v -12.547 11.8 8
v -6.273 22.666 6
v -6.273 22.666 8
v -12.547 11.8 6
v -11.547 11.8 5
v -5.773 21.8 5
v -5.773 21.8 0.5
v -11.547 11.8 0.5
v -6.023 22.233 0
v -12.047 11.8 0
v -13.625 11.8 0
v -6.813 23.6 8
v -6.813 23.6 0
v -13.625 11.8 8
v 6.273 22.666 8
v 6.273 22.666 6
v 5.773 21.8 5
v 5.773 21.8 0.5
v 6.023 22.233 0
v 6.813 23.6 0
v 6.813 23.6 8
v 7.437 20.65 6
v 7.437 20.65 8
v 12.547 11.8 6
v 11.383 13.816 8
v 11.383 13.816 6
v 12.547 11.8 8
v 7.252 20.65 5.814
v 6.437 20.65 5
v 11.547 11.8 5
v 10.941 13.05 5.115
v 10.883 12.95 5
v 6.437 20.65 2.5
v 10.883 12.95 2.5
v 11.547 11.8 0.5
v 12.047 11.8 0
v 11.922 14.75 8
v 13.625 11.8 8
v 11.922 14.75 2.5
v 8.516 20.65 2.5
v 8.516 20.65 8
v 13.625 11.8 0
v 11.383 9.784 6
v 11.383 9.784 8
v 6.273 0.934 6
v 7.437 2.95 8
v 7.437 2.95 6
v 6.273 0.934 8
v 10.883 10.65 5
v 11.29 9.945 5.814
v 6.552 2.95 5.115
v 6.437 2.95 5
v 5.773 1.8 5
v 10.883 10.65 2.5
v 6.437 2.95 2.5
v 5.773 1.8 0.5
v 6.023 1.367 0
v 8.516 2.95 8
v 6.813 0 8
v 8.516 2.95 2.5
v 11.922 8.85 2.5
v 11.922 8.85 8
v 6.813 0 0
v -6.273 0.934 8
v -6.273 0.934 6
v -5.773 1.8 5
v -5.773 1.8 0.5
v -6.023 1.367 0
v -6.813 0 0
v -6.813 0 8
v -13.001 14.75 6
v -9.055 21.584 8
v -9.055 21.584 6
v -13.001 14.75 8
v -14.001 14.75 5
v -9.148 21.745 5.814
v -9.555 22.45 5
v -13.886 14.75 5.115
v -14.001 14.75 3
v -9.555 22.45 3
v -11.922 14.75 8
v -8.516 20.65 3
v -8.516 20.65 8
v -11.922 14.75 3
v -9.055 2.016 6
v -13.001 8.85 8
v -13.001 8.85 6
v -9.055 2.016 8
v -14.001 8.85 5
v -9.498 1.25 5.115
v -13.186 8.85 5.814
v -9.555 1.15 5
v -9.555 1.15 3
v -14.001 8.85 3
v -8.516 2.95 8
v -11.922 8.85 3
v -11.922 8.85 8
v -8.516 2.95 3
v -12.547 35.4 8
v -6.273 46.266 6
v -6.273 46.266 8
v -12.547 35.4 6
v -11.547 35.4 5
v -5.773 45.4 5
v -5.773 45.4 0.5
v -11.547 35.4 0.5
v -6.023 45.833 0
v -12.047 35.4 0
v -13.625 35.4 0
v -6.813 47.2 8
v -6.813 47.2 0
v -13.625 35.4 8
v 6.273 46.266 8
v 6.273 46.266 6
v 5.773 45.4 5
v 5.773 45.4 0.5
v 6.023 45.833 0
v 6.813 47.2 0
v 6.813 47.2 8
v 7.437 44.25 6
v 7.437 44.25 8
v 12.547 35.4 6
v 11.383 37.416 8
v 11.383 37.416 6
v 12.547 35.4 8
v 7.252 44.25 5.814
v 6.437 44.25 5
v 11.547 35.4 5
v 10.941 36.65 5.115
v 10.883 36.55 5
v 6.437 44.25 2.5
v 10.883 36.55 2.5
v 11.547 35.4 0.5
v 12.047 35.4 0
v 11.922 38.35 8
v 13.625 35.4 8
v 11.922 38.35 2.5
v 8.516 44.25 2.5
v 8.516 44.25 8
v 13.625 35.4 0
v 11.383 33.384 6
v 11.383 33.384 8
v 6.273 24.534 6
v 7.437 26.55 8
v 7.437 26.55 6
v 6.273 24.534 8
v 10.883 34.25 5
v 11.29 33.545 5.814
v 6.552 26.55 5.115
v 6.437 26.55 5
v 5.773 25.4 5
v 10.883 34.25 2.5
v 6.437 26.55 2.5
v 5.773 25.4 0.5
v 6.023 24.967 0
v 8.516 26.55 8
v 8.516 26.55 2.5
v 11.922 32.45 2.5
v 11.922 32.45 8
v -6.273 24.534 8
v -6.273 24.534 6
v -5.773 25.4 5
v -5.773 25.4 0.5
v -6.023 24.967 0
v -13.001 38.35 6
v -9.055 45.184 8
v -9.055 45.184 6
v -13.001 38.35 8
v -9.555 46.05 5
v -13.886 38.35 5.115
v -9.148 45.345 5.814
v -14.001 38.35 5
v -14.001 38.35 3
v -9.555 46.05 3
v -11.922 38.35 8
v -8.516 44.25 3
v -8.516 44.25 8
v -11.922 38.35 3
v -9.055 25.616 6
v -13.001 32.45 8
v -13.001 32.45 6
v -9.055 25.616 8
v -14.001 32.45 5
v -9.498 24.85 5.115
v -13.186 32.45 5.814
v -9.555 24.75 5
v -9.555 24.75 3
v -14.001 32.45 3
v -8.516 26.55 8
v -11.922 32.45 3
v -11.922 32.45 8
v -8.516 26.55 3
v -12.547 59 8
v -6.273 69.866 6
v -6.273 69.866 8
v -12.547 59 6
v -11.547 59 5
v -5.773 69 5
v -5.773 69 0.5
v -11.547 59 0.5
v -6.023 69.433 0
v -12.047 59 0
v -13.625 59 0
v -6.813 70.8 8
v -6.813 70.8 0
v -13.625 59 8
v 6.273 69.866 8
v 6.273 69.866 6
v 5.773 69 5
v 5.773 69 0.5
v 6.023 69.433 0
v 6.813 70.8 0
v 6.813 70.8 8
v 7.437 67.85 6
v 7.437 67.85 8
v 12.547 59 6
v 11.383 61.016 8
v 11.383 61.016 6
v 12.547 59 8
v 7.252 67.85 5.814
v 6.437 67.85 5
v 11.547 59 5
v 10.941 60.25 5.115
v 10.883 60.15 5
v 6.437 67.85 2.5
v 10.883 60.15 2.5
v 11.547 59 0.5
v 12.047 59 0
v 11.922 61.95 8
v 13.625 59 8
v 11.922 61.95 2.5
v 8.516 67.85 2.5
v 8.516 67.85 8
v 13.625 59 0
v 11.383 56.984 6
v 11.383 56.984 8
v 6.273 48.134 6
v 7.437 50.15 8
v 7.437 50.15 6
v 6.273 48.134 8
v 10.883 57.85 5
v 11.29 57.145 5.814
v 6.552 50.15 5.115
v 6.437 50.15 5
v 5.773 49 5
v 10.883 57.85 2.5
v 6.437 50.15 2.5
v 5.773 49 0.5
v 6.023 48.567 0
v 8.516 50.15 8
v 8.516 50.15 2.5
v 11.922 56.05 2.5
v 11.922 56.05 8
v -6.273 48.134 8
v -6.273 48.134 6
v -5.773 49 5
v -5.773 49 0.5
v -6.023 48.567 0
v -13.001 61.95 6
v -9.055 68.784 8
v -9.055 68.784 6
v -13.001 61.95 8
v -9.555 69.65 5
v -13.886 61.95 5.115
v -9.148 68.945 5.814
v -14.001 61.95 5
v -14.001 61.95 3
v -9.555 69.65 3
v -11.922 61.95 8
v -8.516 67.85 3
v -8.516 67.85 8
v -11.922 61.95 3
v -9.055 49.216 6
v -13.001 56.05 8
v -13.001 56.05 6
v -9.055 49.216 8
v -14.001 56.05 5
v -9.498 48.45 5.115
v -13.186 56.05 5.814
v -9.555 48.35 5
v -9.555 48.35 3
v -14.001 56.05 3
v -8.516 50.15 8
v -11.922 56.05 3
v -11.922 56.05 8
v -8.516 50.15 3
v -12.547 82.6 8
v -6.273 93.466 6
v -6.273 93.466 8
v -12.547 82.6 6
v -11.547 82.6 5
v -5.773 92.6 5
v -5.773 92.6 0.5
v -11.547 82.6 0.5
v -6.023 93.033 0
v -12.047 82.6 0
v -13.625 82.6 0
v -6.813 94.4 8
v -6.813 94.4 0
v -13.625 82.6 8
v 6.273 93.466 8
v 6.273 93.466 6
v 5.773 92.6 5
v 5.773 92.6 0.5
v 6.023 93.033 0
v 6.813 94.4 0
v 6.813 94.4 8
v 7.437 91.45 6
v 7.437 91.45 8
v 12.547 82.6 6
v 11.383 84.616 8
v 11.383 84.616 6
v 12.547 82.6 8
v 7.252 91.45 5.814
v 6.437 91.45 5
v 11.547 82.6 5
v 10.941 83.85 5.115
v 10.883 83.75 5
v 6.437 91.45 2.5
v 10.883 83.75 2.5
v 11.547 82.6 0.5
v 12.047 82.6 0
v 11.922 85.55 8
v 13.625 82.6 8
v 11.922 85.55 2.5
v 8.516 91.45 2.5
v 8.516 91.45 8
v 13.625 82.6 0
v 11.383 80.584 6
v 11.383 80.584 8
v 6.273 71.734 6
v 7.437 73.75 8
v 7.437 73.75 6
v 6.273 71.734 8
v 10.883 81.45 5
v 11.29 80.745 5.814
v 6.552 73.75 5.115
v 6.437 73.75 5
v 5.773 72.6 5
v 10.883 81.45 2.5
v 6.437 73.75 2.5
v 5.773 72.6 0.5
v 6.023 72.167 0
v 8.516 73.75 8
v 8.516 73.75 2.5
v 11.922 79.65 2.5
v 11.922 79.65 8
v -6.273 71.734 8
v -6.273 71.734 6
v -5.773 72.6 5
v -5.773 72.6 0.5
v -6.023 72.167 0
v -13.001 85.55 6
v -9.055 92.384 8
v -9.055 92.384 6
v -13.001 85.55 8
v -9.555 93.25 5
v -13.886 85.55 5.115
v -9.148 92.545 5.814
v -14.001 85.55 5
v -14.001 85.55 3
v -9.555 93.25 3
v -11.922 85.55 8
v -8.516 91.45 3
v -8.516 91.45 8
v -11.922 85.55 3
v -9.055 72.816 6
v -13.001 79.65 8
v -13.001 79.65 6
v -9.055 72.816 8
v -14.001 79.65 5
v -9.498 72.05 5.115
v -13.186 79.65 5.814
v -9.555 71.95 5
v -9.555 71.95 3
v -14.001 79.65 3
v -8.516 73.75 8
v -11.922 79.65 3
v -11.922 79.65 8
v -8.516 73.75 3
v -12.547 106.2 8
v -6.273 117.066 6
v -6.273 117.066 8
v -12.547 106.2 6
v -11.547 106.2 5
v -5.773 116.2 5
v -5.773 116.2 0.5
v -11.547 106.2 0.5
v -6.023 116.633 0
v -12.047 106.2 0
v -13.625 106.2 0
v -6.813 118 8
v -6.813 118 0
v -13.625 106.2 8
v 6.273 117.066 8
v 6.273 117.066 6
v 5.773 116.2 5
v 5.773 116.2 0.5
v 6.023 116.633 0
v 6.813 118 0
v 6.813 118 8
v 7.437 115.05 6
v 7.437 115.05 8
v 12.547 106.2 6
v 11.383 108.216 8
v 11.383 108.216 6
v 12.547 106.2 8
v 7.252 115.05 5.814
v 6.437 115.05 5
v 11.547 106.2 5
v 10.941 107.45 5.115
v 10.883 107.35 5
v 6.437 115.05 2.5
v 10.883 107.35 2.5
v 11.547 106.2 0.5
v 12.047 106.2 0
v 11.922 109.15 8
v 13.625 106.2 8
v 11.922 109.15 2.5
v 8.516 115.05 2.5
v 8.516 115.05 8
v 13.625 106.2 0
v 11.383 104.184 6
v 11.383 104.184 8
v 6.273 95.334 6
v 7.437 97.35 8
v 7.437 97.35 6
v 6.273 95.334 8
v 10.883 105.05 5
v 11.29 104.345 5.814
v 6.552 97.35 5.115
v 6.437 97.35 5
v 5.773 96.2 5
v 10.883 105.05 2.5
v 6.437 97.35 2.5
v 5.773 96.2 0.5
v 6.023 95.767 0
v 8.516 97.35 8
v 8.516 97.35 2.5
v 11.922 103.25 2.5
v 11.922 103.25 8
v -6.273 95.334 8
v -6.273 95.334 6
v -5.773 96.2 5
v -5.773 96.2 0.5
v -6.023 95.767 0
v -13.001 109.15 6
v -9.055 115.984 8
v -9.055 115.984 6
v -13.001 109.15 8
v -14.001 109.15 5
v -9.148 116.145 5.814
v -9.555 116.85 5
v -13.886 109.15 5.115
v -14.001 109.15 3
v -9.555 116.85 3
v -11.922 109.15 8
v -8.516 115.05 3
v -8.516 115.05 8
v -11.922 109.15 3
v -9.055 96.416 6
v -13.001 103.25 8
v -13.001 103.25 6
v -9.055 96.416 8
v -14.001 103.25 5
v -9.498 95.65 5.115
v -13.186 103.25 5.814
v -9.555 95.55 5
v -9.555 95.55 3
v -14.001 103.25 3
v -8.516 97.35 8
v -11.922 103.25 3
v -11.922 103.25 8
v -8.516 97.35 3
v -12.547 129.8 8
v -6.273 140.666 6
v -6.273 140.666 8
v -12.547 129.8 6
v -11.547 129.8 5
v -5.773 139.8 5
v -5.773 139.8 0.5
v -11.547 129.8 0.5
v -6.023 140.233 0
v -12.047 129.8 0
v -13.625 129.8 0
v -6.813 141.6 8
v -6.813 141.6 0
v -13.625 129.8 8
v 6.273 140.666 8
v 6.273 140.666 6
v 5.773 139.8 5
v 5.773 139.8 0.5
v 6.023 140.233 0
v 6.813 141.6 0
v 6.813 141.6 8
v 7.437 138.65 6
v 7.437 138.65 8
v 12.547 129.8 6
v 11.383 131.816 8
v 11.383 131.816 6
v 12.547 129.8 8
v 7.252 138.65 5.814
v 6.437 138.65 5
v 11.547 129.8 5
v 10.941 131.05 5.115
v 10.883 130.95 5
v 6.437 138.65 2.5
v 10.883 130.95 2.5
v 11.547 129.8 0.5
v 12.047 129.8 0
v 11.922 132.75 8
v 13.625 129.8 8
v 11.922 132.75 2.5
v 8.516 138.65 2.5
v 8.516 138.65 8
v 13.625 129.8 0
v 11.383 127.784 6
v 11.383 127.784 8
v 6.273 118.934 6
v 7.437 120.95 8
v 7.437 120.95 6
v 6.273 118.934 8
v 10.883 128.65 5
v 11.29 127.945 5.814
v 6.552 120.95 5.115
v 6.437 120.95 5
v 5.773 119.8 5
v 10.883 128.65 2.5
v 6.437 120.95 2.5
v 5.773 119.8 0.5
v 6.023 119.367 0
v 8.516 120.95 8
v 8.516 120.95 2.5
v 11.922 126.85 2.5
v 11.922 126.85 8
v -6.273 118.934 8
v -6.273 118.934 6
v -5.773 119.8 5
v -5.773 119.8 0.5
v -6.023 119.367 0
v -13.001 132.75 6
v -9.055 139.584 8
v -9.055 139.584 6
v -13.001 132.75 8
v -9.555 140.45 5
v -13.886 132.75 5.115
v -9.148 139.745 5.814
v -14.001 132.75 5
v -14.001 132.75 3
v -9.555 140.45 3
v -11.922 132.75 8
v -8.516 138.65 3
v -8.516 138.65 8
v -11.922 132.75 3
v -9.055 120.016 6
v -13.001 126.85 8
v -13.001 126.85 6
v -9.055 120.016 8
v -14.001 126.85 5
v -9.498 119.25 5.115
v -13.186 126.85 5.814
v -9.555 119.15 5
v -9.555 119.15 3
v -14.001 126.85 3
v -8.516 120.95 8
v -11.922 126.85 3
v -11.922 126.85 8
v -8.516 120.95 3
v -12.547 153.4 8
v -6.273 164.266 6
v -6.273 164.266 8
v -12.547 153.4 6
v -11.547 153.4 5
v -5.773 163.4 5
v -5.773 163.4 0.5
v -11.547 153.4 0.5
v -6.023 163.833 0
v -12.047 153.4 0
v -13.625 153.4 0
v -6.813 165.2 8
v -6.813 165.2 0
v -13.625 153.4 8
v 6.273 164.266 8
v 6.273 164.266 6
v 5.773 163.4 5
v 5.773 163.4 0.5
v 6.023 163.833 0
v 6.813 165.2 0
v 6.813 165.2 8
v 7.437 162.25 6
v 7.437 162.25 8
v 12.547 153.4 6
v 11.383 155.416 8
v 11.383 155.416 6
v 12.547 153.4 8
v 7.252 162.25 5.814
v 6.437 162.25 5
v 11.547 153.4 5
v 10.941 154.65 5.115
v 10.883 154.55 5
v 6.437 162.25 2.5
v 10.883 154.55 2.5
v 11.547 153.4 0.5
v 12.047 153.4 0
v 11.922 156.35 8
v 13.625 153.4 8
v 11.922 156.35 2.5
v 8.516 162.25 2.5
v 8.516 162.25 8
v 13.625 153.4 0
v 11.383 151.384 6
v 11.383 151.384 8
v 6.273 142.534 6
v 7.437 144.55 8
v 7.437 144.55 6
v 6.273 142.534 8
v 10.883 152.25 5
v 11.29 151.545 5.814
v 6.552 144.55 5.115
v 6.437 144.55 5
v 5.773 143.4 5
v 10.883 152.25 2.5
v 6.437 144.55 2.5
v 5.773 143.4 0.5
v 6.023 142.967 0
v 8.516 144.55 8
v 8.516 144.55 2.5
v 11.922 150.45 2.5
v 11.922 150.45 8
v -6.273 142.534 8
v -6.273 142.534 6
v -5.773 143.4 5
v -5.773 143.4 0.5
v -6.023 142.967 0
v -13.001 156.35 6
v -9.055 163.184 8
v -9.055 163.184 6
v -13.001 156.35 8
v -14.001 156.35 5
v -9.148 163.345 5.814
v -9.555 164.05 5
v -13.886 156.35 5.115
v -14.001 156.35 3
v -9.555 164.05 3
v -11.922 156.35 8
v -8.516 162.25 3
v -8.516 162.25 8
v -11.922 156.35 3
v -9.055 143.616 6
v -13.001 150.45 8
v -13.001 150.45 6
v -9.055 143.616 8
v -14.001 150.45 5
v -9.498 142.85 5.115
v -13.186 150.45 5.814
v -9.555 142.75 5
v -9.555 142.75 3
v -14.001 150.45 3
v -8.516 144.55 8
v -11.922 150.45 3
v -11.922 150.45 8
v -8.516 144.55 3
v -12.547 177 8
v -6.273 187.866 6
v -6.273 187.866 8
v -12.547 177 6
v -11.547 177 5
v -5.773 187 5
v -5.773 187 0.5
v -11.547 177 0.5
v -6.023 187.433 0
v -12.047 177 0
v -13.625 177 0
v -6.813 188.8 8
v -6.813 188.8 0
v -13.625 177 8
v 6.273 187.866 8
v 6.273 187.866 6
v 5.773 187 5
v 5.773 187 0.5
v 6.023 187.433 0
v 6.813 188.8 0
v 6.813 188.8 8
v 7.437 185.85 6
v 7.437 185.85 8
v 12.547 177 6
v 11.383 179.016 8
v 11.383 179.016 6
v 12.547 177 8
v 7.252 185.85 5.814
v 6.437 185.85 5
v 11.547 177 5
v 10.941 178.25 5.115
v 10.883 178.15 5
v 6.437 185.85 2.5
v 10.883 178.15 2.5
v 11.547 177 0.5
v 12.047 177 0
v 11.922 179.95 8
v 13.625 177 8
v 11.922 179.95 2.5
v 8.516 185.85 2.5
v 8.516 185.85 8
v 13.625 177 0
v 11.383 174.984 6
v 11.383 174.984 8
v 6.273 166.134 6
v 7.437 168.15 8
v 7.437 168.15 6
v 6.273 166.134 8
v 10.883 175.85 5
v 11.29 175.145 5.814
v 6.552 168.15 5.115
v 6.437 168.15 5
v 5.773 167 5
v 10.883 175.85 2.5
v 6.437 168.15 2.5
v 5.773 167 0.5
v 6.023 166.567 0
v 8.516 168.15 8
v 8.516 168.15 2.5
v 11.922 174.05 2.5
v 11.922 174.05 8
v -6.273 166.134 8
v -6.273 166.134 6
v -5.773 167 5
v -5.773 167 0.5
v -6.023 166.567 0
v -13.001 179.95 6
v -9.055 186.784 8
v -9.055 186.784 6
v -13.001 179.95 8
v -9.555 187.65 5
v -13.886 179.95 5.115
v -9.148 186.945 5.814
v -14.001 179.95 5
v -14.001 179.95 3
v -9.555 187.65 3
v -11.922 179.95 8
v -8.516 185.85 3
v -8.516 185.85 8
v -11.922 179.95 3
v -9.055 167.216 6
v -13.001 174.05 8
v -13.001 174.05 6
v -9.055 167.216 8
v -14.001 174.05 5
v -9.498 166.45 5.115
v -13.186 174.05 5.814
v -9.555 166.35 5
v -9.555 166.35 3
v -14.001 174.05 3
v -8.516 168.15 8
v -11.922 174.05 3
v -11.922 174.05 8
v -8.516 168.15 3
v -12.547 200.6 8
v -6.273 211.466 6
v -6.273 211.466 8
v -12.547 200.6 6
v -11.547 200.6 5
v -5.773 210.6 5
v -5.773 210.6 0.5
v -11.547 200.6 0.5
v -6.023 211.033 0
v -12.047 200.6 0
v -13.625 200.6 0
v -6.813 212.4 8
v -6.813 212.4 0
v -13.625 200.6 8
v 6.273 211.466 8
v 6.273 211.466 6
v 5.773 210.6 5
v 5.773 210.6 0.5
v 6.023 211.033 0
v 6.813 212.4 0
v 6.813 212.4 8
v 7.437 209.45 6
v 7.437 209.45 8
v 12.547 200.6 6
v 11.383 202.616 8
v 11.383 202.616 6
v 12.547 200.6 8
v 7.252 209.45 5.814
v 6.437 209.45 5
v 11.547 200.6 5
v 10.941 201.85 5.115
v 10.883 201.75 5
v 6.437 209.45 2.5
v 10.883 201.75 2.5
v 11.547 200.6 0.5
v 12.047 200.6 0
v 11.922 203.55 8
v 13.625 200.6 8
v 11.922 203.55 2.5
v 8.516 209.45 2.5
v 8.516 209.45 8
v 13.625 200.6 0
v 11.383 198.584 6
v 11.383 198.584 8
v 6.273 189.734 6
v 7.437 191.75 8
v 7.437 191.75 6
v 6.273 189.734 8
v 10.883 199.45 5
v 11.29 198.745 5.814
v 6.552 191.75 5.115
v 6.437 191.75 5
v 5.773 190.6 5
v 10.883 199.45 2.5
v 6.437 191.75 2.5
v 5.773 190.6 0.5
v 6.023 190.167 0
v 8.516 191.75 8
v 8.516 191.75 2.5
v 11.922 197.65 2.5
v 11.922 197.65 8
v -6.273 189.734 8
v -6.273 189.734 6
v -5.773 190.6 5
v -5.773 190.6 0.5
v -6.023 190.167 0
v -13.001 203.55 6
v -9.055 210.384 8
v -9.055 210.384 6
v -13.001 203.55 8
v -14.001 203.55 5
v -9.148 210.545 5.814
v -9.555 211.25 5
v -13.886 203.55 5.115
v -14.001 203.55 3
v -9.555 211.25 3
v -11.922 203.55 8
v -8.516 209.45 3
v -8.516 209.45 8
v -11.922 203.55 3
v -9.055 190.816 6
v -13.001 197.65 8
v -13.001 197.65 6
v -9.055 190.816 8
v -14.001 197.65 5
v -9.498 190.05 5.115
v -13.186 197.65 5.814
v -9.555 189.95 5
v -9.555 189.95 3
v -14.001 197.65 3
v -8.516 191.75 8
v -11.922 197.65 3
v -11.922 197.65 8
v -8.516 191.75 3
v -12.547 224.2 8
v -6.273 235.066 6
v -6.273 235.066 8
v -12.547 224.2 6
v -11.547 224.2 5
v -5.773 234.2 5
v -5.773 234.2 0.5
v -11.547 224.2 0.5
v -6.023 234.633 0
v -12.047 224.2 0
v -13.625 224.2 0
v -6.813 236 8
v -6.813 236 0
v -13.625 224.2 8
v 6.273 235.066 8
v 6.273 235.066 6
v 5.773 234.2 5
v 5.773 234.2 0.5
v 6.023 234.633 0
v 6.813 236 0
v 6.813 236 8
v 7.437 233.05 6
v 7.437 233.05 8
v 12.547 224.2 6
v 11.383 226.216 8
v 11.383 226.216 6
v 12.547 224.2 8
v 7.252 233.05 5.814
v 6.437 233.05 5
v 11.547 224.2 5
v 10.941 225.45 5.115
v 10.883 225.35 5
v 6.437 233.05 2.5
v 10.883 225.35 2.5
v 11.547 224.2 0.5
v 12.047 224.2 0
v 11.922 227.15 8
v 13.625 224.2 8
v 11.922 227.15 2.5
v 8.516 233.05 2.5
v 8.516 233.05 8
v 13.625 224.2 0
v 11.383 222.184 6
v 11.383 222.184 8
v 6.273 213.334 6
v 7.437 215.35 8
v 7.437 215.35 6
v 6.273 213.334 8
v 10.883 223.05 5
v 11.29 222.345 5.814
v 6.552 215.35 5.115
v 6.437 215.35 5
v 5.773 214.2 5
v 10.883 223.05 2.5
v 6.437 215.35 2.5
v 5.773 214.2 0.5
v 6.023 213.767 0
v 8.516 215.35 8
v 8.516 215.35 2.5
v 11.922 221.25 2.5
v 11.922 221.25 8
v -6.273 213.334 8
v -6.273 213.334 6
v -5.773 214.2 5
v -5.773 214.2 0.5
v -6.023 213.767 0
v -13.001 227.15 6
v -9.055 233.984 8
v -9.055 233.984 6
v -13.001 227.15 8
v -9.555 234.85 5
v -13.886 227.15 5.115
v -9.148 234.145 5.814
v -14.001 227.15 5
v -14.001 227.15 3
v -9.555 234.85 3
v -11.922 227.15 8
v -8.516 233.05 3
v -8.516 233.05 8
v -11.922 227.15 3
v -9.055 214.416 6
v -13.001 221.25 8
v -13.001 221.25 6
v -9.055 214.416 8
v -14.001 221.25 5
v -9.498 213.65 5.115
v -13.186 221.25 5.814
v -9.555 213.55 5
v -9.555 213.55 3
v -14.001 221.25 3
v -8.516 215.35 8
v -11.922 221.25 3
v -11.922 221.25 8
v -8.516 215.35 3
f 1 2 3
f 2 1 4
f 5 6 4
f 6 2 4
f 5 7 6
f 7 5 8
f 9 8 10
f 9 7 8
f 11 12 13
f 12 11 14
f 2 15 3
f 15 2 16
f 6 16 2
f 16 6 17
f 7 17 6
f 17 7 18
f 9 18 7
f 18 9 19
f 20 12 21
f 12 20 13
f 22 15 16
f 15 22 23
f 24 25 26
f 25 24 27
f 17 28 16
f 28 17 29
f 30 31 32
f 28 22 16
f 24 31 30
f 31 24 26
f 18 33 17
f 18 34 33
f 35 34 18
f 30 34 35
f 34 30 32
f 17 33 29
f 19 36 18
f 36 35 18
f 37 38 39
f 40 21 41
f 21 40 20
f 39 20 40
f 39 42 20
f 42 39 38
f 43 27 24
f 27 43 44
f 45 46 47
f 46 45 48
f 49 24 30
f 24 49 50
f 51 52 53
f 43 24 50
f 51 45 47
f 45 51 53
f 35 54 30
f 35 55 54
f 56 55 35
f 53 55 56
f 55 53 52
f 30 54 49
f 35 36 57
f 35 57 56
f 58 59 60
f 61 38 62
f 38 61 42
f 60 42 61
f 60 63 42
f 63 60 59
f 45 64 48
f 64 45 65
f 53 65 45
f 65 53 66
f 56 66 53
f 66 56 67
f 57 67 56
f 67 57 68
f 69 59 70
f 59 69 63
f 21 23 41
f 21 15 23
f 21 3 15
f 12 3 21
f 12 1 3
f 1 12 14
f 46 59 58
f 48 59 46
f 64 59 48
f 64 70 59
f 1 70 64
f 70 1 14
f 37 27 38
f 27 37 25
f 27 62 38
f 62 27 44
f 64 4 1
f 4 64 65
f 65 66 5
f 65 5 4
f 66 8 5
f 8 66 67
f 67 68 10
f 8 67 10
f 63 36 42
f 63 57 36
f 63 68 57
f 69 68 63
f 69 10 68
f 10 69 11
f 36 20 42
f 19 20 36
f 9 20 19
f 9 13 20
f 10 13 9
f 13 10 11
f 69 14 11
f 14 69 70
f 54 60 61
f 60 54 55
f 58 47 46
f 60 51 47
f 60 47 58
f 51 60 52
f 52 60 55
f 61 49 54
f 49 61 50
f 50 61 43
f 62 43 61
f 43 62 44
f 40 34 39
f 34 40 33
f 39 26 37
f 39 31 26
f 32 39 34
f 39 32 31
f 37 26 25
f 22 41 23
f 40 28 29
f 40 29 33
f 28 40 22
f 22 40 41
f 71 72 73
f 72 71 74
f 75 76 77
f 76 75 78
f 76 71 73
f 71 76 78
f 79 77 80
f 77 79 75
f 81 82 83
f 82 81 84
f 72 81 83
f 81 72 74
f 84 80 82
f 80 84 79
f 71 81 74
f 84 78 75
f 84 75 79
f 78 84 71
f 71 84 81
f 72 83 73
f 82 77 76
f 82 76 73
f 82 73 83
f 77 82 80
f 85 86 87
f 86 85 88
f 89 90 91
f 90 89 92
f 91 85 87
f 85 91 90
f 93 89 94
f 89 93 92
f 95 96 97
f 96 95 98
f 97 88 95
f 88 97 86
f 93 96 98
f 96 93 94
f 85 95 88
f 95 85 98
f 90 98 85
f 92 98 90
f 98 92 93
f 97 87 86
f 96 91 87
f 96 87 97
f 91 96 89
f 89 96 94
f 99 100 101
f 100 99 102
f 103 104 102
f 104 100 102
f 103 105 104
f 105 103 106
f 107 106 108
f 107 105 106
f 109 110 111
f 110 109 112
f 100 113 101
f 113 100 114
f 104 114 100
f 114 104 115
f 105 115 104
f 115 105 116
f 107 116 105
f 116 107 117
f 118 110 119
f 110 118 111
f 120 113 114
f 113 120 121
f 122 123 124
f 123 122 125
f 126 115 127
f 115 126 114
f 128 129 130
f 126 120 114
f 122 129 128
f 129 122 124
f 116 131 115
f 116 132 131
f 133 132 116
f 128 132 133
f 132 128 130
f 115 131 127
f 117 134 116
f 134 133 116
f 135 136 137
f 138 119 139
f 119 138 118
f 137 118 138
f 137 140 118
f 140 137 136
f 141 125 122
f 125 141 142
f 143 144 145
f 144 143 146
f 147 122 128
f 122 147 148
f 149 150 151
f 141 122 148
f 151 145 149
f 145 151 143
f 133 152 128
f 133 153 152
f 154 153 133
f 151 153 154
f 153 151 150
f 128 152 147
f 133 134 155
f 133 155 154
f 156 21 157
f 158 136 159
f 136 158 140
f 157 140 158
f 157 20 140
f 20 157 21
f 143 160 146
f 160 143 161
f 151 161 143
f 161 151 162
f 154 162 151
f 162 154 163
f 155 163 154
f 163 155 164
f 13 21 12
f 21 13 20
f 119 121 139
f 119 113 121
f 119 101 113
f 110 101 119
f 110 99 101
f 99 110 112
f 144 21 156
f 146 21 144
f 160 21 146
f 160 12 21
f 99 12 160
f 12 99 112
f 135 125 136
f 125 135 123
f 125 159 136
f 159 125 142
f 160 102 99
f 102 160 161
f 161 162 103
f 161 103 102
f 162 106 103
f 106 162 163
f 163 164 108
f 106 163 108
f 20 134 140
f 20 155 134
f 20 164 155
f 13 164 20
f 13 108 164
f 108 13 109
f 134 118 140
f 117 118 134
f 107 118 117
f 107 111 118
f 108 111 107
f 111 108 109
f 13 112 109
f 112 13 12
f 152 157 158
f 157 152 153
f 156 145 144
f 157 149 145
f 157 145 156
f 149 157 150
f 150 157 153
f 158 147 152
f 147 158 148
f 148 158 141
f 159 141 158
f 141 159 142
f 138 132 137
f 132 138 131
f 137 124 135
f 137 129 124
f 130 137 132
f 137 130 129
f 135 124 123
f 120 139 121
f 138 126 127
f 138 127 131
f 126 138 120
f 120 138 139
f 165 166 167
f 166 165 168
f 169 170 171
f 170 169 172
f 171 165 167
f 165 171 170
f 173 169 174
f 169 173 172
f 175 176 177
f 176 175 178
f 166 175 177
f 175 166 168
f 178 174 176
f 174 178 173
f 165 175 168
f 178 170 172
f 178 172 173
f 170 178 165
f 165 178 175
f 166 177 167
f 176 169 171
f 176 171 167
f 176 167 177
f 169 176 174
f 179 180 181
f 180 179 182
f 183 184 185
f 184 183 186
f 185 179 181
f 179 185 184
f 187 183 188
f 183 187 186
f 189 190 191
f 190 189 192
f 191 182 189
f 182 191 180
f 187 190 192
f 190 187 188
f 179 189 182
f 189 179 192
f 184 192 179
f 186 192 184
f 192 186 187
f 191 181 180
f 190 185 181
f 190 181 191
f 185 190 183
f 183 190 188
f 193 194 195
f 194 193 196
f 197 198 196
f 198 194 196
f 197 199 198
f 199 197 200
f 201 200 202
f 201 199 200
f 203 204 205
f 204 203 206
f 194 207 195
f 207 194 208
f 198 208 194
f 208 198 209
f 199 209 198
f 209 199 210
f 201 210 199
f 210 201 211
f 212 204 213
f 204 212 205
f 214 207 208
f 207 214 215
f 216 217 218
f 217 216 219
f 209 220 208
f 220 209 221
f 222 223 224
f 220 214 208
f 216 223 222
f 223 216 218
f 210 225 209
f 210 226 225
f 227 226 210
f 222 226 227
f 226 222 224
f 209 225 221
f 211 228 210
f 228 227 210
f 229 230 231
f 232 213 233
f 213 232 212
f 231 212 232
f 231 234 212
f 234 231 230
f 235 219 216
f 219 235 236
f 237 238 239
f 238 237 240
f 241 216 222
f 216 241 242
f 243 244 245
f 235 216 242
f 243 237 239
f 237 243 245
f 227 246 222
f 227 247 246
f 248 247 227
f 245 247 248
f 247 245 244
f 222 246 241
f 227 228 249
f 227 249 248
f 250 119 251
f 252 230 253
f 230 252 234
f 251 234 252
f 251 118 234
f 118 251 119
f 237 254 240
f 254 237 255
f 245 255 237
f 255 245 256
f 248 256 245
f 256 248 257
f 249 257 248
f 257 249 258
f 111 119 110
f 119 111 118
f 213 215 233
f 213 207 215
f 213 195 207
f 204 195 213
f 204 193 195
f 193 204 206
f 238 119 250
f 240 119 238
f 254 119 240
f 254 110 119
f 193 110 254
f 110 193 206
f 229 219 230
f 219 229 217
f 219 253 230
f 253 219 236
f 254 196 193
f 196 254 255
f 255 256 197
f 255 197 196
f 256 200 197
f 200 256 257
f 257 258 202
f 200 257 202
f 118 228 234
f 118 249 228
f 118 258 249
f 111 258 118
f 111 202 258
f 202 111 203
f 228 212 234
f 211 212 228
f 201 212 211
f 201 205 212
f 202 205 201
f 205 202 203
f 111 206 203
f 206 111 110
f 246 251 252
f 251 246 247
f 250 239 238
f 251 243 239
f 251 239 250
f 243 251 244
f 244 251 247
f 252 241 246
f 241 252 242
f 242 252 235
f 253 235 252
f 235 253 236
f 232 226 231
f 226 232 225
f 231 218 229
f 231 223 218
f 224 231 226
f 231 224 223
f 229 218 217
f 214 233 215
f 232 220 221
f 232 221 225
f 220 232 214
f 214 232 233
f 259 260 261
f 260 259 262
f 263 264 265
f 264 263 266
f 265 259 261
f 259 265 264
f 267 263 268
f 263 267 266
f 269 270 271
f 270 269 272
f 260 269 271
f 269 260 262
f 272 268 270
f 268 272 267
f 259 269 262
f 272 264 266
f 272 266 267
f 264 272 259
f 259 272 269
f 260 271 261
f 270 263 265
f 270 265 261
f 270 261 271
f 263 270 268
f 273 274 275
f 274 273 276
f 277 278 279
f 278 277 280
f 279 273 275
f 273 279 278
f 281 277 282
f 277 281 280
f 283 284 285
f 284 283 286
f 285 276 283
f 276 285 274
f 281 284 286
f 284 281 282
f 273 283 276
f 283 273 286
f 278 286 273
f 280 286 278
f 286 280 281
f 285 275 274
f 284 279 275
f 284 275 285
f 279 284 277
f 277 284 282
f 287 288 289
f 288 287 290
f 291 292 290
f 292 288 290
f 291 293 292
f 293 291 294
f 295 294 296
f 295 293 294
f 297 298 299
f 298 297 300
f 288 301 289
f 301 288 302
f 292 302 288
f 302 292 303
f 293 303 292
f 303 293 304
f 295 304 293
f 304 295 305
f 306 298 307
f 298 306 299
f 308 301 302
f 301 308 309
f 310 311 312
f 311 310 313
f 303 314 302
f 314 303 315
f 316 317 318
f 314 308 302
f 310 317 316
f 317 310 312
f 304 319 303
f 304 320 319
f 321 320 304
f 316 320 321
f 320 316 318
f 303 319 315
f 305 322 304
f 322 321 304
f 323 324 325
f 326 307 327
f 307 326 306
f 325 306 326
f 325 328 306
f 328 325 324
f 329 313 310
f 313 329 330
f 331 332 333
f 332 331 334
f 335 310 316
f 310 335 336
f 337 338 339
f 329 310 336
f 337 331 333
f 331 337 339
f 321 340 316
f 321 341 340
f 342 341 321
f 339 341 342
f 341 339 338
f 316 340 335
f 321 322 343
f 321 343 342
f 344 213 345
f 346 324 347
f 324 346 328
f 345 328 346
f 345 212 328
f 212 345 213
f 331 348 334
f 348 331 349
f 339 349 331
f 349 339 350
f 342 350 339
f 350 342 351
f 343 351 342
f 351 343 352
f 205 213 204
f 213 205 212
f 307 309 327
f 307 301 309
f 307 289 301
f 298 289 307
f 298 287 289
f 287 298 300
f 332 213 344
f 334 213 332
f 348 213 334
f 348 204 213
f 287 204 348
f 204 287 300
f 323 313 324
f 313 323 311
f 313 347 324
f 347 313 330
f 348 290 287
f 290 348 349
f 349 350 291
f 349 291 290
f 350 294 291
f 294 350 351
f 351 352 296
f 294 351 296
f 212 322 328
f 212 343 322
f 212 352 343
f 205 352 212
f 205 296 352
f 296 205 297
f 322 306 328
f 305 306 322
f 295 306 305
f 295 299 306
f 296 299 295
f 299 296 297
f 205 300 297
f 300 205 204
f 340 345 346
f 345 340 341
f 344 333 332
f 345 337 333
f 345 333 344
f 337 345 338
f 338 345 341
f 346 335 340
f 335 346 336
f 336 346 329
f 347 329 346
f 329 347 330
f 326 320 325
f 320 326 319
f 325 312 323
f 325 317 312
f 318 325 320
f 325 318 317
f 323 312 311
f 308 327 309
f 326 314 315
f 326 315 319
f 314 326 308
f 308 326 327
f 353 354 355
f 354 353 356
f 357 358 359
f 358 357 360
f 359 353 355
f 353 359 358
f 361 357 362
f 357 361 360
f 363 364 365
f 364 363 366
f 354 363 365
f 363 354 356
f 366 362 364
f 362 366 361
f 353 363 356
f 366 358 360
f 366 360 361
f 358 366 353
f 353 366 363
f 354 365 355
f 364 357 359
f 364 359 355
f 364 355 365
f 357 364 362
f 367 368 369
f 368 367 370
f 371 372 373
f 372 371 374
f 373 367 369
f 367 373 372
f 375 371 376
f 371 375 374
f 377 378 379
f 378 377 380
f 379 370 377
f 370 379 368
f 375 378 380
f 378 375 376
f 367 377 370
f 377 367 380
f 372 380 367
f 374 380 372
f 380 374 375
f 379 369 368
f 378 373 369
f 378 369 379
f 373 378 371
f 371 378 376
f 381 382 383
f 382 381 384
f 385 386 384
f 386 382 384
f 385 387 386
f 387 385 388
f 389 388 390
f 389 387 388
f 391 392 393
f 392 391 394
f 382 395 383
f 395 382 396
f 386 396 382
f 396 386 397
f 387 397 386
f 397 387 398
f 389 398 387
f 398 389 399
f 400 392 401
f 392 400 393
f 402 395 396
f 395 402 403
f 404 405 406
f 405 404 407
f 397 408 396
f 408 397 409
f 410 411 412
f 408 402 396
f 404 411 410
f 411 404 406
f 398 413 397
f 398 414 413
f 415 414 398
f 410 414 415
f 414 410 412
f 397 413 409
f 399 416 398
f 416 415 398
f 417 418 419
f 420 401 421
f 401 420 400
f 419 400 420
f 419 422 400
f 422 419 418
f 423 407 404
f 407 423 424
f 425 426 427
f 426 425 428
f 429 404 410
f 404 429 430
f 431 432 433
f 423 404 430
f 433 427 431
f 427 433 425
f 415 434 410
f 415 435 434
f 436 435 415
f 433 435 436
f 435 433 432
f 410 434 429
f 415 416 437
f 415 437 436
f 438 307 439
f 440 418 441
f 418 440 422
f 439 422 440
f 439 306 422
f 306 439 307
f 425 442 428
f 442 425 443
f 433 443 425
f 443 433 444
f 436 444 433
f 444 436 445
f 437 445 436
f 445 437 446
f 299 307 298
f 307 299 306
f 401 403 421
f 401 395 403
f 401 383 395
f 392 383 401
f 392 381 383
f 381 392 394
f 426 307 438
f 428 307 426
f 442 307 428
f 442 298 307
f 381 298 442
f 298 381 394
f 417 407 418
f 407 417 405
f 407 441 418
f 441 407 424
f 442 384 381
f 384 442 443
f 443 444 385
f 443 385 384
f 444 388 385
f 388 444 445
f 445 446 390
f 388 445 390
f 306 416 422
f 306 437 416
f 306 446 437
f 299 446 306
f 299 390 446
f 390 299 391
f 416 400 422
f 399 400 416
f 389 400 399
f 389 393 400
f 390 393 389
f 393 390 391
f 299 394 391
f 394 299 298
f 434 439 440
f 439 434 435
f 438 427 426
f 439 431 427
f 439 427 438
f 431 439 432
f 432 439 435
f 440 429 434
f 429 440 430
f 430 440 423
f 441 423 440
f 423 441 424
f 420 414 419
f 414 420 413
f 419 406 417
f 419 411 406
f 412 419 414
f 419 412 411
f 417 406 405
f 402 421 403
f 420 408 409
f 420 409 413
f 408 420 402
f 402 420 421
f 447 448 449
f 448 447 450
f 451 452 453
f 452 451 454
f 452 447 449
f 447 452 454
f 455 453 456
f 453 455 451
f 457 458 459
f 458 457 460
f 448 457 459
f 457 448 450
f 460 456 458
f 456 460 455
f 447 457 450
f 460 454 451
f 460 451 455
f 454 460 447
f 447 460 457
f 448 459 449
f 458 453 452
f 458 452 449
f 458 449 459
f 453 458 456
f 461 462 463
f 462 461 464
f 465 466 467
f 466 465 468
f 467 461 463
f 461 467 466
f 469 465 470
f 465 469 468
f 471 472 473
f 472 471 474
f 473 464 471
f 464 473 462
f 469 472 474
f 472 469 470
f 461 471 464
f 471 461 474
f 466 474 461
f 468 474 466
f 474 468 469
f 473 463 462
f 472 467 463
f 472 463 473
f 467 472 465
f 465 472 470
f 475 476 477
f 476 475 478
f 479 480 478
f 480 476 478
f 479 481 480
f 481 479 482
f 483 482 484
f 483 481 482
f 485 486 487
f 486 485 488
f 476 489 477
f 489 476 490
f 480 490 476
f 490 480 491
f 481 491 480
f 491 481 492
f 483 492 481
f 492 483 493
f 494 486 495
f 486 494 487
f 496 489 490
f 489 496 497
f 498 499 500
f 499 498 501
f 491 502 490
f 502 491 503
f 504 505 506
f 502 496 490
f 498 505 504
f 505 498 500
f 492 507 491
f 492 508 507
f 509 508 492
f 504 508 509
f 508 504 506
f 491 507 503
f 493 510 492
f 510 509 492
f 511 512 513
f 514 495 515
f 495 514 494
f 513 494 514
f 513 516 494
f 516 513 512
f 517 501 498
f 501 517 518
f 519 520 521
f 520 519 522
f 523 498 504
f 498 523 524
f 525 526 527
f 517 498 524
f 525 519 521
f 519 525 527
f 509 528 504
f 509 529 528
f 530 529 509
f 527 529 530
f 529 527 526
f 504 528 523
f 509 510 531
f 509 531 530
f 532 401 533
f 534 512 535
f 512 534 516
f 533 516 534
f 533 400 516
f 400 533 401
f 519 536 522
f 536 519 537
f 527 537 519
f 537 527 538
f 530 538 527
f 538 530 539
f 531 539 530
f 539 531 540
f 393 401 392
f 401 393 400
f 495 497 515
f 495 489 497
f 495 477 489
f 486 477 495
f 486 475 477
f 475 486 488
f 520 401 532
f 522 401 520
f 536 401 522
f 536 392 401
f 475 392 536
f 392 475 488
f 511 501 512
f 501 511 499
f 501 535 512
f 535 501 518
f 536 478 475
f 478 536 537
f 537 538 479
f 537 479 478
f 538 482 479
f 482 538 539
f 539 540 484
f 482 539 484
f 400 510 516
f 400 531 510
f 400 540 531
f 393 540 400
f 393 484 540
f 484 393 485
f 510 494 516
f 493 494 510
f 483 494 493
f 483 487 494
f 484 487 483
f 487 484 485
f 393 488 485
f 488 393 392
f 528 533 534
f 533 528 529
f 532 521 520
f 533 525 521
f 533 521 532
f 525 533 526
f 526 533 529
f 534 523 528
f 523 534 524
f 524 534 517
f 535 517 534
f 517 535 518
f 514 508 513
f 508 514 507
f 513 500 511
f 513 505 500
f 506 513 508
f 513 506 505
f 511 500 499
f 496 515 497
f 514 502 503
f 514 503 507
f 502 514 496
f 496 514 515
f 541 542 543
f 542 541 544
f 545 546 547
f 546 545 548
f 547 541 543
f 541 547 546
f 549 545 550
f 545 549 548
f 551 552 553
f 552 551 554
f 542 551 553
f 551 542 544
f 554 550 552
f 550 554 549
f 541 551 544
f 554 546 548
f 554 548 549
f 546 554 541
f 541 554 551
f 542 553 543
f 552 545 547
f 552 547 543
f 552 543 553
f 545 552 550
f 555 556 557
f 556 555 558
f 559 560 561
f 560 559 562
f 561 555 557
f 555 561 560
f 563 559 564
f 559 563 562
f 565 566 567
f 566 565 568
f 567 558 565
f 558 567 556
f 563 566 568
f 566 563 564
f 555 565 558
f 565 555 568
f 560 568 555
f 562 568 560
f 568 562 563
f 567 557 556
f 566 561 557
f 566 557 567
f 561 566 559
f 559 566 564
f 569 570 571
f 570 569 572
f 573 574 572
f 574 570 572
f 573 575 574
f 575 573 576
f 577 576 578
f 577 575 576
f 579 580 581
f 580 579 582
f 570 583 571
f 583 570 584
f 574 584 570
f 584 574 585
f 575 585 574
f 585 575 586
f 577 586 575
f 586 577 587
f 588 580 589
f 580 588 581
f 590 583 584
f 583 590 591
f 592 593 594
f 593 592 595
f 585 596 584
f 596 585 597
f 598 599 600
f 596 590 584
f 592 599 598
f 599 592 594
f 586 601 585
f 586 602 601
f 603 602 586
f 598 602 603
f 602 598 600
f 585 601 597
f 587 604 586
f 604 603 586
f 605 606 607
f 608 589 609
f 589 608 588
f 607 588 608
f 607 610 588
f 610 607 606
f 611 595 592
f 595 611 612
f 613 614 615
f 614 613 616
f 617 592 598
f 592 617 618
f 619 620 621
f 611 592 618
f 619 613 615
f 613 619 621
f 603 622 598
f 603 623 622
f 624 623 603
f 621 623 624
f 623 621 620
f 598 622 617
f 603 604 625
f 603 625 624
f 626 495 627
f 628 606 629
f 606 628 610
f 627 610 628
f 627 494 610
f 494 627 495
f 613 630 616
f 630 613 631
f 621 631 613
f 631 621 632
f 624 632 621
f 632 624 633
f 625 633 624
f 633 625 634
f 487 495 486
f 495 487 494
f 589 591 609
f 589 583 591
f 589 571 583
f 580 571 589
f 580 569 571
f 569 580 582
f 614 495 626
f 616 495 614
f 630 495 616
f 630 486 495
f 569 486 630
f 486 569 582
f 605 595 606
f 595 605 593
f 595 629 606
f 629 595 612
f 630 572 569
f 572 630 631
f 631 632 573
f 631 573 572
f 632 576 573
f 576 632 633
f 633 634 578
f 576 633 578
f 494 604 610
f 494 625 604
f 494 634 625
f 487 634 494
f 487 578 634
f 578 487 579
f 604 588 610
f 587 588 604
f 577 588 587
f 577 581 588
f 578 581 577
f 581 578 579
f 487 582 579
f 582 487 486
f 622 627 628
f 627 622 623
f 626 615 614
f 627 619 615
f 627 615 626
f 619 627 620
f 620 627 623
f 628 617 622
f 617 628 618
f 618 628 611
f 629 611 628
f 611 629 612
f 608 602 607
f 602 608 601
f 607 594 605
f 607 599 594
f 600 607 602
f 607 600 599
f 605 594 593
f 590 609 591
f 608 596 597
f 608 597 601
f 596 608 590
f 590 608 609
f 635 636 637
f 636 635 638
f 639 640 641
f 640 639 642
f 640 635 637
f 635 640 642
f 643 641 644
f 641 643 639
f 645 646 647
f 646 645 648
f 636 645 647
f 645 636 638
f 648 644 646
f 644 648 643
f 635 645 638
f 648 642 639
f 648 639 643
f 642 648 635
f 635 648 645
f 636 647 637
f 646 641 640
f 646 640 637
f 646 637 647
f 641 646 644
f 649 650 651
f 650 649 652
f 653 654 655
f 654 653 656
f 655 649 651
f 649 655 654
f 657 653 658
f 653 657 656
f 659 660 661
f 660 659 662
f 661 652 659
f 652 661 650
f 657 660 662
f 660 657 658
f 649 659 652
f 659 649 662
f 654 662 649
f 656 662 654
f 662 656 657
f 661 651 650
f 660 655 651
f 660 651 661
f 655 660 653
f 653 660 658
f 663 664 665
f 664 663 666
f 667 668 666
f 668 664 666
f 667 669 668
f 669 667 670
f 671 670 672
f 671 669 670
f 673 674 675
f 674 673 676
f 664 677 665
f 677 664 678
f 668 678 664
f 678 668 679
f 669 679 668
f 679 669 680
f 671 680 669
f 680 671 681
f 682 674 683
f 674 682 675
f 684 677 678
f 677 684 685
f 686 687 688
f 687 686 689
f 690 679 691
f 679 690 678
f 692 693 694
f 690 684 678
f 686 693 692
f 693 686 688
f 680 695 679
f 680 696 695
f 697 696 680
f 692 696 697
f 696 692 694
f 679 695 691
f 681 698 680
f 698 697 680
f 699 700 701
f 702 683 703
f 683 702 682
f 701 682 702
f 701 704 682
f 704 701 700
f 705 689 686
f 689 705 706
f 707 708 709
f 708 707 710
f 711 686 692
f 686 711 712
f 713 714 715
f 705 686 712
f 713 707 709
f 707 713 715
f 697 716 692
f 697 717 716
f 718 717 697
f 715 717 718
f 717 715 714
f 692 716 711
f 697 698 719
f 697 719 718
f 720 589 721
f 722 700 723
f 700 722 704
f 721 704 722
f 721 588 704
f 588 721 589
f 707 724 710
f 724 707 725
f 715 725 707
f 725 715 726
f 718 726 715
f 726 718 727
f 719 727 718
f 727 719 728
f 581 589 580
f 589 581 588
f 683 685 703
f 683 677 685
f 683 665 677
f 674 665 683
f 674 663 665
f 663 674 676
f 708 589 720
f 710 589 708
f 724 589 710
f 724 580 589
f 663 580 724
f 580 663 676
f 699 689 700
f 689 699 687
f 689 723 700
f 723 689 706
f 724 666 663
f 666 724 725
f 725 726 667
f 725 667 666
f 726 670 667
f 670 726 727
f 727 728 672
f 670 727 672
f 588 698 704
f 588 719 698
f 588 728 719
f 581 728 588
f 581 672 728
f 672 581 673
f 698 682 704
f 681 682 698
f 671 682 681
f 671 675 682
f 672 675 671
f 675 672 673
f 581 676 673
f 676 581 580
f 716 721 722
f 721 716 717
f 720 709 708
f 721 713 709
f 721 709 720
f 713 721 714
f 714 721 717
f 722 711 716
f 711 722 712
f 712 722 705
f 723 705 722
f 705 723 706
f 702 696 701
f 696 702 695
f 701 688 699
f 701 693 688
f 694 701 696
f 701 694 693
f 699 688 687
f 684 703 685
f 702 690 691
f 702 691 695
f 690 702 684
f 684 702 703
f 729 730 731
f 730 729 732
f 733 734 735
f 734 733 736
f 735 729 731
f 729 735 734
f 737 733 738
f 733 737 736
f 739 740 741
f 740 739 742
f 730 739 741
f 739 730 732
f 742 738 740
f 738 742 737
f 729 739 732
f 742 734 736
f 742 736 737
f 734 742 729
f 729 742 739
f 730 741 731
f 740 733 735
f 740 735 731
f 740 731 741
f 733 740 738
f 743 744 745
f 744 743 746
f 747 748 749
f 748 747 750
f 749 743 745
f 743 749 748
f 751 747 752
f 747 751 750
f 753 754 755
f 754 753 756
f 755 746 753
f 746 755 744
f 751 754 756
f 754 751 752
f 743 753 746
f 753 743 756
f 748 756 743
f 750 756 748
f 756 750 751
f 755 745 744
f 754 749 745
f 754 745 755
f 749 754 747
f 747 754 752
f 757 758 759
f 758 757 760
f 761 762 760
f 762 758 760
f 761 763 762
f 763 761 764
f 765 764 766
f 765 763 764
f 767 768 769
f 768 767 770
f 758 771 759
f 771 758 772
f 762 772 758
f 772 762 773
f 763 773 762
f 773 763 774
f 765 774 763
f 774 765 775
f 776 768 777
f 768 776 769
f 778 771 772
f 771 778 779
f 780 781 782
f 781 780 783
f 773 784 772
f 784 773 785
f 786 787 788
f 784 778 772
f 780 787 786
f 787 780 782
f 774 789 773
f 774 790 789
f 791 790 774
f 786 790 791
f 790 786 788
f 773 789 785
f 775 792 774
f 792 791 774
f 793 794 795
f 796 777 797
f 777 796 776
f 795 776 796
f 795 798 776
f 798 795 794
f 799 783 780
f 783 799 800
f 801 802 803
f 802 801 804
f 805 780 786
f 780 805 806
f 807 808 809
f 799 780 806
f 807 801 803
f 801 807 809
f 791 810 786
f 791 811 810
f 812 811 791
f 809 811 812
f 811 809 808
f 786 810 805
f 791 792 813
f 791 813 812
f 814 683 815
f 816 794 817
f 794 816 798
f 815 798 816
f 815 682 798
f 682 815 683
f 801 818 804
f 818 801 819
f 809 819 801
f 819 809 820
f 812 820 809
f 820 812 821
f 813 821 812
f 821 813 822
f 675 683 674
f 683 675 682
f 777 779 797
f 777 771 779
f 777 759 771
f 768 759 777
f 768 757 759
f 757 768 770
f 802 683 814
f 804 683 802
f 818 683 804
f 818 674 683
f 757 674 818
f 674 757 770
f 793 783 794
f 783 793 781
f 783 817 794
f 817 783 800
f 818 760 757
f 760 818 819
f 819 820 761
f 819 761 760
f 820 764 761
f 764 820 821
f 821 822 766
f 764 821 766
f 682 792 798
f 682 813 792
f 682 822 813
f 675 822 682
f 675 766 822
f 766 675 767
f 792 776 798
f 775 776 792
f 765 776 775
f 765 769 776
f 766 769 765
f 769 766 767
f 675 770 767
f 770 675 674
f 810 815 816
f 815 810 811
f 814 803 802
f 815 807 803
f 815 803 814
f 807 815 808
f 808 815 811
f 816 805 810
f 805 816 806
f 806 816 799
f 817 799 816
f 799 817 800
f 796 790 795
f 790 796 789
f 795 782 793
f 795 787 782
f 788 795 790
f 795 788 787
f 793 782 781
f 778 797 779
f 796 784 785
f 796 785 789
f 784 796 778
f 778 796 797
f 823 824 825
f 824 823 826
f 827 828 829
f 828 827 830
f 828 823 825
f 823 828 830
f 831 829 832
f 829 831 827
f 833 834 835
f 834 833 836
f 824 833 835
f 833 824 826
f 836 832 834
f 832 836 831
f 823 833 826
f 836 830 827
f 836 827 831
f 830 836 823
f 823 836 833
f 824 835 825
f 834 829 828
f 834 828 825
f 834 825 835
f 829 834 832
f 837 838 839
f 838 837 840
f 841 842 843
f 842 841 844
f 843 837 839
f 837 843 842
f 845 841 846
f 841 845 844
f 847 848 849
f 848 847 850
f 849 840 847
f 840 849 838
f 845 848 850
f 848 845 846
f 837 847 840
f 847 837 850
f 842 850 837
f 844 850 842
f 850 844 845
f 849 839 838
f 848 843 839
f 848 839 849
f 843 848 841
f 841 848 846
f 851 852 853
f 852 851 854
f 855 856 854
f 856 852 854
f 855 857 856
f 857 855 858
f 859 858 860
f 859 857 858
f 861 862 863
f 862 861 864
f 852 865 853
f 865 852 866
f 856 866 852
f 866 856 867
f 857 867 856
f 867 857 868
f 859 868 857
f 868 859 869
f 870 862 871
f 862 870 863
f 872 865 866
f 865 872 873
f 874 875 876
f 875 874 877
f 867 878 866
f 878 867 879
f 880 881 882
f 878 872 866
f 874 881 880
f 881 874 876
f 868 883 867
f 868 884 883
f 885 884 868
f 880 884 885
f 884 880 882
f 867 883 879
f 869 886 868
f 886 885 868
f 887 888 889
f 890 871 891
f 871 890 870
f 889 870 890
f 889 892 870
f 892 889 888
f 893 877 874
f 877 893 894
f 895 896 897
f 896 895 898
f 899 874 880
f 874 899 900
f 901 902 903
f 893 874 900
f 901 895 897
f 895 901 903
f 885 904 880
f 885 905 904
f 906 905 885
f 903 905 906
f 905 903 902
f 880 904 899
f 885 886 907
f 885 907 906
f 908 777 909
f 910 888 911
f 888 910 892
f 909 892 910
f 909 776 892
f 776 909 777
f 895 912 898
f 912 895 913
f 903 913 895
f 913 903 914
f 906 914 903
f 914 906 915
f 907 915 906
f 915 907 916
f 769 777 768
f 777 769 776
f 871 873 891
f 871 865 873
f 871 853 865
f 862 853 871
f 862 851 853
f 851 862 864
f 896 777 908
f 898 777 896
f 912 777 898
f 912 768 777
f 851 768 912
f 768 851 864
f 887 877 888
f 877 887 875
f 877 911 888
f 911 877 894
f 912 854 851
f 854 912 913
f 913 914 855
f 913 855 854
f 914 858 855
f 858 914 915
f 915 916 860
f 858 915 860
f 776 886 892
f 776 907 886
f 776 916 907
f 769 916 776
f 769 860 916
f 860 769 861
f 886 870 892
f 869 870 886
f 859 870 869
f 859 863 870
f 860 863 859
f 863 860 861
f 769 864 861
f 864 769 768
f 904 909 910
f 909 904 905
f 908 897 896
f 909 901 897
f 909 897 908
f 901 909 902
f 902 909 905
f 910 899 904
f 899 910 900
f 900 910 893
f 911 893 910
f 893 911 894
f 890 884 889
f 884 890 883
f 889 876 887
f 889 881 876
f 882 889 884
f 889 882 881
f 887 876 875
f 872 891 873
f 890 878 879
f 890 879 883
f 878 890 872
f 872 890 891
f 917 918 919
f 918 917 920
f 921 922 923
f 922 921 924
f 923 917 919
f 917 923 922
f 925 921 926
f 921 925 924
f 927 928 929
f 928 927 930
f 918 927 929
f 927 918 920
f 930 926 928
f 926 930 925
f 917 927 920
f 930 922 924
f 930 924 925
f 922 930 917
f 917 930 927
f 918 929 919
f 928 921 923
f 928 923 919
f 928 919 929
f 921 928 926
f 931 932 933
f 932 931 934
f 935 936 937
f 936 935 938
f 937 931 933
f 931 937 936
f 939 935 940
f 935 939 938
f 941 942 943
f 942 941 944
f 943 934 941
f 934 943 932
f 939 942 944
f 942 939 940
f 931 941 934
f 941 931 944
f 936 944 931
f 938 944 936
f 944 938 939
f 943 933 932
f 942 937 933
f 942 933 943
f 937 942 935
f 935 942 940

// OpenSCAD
// file: honeycomb_element.scad
$fn = 50;

radius = 13.6;
diameter = radius * 2;

h_inner = 10;
r_inner = h_inner * 2 / sqrt(3);

h_outer = 10 + 1.8;
r_outer = h_outer * 2 / sqrt(3);

h_thin = 10 + 1;
r_thin = h_thin * 2 / sqrt(3);

total_height = 8;

small_value = 0.1;

clips_height = 5;
clips_offset = 0.5;
clips_side_offset = 0.00;

module basic_polygon() {
  polygon(
    [
      [r_outer, total_height],
      [r_outer, 0],
      [r_inner + 0.5, 0],
      [r_inner, 0.5],
      [r_inner, total_height - 3],
      [r_inner + 1, total_height - 2],
      [r_inner + 1, total_height],
    ]
  );
}

module basic_model() {
  rotate_extrude($fn=6) {
    basic_polygon();
  }
}

module panel_with_clips(pin_1 = false, pin_2 = false, pin_3 = false, pin_4 = false, pin_5 = false, pin_6 = false, slot_1 = false, slot_2 = false, slot_3 = false, slot_4 = false, slot_5 = false, slot_6 = false) {

  difference() {
    basic_model();

    if (slot_1) {
      rotate([0, 0, 0])
        translate([0, -h_outer * 2, total_height - (clips_height + clips_offset) / 2])
          linear_extrude(height=clips_height + clips_offset, center=true)
            polygon([[clips_side_offset, h_outer / 2], [-clips_side_offset, h_outer / 2], [-r_outer / 2 - clips_side_offset, h_outer * 1.5], [r_outer / 2 + clips_side_offset, h_outer * 1.5]]);
    }

    if (slot_2) {
      rotate([0, 0, 60])
        translate([0, -h_outer * 2, total_height - (clips_height + clips_offset) / 2])
          linear_extrude(height=clips_height + clips_offset, center=true)
            polygon([[clips_side_offset, h_outer / 2], [-clips_side_offset, h_outer / 2], [-r_outer / 2 - clips_side_offset, h_outer * 1.5], [r_outer / 2 + clips_side_offset, h_outer * 1.5]]);
    }

    if (slot_3) {
      rotate([0, 0, 120])
        translate([0, -h_outer * 2, total_height - (clips_height + clips_offset) / 2])
          linear_extrude(height=clips_height + clips_offset, center=true)
            polygon([[clips_side_offset, h_outer / 2], [-clips_side_offset, h_outer / 2], [-r_outer / 2 - clips_side_offset, h_outer * 1.5], [r_outer / 2 + clips_side_offset, h_outer * 1.5]]);
    }

    if (slot_4) {
      rotate([0, 0, 180])
        translate([0, -h_outer * 2, total_height - (clips_height + clips_offset) / 2])
          linear_extrude(height=clips_height + clips_offset, center=true)
            polygon([[clips_side_offset, h_outer / 2], [-clips_side_offset, h_outer / 2], [-r_outer / 2 - clips_side_offset, h_outer * 1.5], [r_outer / 2 + clips_side_offset, h_outer * 1.5]]);
    }

    if (slot_5) {
      rotate([0, 0, 240])
        translate([0, -h_outer * 2, total_height - (clips_height + clips_offset) / 2])
          linear_extrude(height=clips_height + clips_offset, center=true)
            polygon([[clips_side_offset, h_outer / 2], [-clips_side_offset, h_outer / 2], [-r_outer / 2 - clips_side_offset, h_outer * 1.5], [r_outer / 2 + clips_side_offset, h_outer * 1.5]]);
    }

    if (slot_6) {
      rotate([0, 0, 300])
        translate([0, -h_outer * 2, total_height - (clips_height + clips_offset) / 2])
          linear_extrude(height=clips_height + clips_offset, center=true)
            polygon([[clips_side_offset, h_outer / 2], [-clips_side_offset, h_outer / 2], [-r_outer / 2 - clips_side_offset, h_outer * 1.5], [r_outer / 2 + clips_side_offset, h_outer * 1.5]]);
    }
  }

  if (pin_1) {
    intersection() {
      translate([0, -h_outer * 2, 0])
        basic_model();
      translate([0, 0, total_height - clips_height / 2]) {
        rotate([0, 0, -180])
          linear_extrude(height=clips_height, center=true)
            polygon([[0, h_outer / 2], [-r_outer / 2, h_outer * 1.5], [r_outer / 2, h_outer * 1.5]]);
      }
    }
  }

  if (pin_2) {
    intersection() {
      translate([r_outer * 1.5, -h_outer, 0])
        basic_model();
      translate([0, 0, total_height - clips_height / 2]) {
        rotate([0, 0, -120])
          linear_extrude(height=clips_height, center=true)
            polygon([[0, h_outer / 2], [-r_outer / 2, h_outer * 1.5], [r_outer / 2, h_outer * 1.5]]);
      }
    }
  }

  if (pin_3) {
    intersection() {
      translate([r_outer * 1.5, h_outer, 0])
        basic_model();
      translate([0, 0, total_height - clips_height / 2]) {
        rotate([0, 0, -60])
          linear_extrude(height=clips_height, center=true)
            polygon([[0, h_outer / 2], [-r_outer / 2, h_outer * 1.5], [r_outer / 2, h_outer * 1.5]]);
      }
    }
  }

  if (pin_4) {
    intersection() {
      translate([0, h_outer * 2, 0])
        basic_model();

      translate([0, 0, total_height - clips_height / 2]) {
        linear_extrude(height=clips_height, center=true)
          polygon([[0, h_outer / 2], [-r_outer / 2, h_outer * 1.5], [r_outer / 2, h_outer * 1.5]]);
      }
    }
  }

  if (pin_5) {
    intersection() {
      translate([-r_outer * 1.5, h_outer, 0])
        basic_model();
      translate([0, 0, total_height - clips_height / 2]) {
        rotate([0, 0, 60])
          linear_extrude(height=clips_height, center=true)
            polygon([[0, h_outer / 2], [-r_outer / 2, h_outer * 1.5], [r_outer / 2, h_outer * 1.5]]);
      }
    }
  }

  if (pin_6) {
    intersection() {
      translate([-r_outer * 1.5, -h_outer, 0])
        basic_model();

      translate([0, 0, total_height - clips_height / 2]) {
        rotate([0, 0, 120])
          linear_extrude(height=clips_height, center=true)
            polygon([[0, h_outer / 2], [-r_outer / 2, h_outer * 1.5], [r_outer / 2, h_outer * 1.5]]);
      }
    }
  }
}

// end honeycomb_element.scad
// main file
$fn = 50;


h_outer = 10+1.8;
r_outer = h_outer * 2/sqrt(3);




use <honeycomb_element.scad>;


module panel_9x9() {
    for (i = [0:9]) {
               translate([0, h_outer+h_outer*2*i, 0])
                  panel_with_clips(
                    
                    slot_2 = true,
                    slot_3 = true,    
                    
                    pin_5 = true,
                    pin_6 = true           
                  );
    }
}

panel_9x9();
